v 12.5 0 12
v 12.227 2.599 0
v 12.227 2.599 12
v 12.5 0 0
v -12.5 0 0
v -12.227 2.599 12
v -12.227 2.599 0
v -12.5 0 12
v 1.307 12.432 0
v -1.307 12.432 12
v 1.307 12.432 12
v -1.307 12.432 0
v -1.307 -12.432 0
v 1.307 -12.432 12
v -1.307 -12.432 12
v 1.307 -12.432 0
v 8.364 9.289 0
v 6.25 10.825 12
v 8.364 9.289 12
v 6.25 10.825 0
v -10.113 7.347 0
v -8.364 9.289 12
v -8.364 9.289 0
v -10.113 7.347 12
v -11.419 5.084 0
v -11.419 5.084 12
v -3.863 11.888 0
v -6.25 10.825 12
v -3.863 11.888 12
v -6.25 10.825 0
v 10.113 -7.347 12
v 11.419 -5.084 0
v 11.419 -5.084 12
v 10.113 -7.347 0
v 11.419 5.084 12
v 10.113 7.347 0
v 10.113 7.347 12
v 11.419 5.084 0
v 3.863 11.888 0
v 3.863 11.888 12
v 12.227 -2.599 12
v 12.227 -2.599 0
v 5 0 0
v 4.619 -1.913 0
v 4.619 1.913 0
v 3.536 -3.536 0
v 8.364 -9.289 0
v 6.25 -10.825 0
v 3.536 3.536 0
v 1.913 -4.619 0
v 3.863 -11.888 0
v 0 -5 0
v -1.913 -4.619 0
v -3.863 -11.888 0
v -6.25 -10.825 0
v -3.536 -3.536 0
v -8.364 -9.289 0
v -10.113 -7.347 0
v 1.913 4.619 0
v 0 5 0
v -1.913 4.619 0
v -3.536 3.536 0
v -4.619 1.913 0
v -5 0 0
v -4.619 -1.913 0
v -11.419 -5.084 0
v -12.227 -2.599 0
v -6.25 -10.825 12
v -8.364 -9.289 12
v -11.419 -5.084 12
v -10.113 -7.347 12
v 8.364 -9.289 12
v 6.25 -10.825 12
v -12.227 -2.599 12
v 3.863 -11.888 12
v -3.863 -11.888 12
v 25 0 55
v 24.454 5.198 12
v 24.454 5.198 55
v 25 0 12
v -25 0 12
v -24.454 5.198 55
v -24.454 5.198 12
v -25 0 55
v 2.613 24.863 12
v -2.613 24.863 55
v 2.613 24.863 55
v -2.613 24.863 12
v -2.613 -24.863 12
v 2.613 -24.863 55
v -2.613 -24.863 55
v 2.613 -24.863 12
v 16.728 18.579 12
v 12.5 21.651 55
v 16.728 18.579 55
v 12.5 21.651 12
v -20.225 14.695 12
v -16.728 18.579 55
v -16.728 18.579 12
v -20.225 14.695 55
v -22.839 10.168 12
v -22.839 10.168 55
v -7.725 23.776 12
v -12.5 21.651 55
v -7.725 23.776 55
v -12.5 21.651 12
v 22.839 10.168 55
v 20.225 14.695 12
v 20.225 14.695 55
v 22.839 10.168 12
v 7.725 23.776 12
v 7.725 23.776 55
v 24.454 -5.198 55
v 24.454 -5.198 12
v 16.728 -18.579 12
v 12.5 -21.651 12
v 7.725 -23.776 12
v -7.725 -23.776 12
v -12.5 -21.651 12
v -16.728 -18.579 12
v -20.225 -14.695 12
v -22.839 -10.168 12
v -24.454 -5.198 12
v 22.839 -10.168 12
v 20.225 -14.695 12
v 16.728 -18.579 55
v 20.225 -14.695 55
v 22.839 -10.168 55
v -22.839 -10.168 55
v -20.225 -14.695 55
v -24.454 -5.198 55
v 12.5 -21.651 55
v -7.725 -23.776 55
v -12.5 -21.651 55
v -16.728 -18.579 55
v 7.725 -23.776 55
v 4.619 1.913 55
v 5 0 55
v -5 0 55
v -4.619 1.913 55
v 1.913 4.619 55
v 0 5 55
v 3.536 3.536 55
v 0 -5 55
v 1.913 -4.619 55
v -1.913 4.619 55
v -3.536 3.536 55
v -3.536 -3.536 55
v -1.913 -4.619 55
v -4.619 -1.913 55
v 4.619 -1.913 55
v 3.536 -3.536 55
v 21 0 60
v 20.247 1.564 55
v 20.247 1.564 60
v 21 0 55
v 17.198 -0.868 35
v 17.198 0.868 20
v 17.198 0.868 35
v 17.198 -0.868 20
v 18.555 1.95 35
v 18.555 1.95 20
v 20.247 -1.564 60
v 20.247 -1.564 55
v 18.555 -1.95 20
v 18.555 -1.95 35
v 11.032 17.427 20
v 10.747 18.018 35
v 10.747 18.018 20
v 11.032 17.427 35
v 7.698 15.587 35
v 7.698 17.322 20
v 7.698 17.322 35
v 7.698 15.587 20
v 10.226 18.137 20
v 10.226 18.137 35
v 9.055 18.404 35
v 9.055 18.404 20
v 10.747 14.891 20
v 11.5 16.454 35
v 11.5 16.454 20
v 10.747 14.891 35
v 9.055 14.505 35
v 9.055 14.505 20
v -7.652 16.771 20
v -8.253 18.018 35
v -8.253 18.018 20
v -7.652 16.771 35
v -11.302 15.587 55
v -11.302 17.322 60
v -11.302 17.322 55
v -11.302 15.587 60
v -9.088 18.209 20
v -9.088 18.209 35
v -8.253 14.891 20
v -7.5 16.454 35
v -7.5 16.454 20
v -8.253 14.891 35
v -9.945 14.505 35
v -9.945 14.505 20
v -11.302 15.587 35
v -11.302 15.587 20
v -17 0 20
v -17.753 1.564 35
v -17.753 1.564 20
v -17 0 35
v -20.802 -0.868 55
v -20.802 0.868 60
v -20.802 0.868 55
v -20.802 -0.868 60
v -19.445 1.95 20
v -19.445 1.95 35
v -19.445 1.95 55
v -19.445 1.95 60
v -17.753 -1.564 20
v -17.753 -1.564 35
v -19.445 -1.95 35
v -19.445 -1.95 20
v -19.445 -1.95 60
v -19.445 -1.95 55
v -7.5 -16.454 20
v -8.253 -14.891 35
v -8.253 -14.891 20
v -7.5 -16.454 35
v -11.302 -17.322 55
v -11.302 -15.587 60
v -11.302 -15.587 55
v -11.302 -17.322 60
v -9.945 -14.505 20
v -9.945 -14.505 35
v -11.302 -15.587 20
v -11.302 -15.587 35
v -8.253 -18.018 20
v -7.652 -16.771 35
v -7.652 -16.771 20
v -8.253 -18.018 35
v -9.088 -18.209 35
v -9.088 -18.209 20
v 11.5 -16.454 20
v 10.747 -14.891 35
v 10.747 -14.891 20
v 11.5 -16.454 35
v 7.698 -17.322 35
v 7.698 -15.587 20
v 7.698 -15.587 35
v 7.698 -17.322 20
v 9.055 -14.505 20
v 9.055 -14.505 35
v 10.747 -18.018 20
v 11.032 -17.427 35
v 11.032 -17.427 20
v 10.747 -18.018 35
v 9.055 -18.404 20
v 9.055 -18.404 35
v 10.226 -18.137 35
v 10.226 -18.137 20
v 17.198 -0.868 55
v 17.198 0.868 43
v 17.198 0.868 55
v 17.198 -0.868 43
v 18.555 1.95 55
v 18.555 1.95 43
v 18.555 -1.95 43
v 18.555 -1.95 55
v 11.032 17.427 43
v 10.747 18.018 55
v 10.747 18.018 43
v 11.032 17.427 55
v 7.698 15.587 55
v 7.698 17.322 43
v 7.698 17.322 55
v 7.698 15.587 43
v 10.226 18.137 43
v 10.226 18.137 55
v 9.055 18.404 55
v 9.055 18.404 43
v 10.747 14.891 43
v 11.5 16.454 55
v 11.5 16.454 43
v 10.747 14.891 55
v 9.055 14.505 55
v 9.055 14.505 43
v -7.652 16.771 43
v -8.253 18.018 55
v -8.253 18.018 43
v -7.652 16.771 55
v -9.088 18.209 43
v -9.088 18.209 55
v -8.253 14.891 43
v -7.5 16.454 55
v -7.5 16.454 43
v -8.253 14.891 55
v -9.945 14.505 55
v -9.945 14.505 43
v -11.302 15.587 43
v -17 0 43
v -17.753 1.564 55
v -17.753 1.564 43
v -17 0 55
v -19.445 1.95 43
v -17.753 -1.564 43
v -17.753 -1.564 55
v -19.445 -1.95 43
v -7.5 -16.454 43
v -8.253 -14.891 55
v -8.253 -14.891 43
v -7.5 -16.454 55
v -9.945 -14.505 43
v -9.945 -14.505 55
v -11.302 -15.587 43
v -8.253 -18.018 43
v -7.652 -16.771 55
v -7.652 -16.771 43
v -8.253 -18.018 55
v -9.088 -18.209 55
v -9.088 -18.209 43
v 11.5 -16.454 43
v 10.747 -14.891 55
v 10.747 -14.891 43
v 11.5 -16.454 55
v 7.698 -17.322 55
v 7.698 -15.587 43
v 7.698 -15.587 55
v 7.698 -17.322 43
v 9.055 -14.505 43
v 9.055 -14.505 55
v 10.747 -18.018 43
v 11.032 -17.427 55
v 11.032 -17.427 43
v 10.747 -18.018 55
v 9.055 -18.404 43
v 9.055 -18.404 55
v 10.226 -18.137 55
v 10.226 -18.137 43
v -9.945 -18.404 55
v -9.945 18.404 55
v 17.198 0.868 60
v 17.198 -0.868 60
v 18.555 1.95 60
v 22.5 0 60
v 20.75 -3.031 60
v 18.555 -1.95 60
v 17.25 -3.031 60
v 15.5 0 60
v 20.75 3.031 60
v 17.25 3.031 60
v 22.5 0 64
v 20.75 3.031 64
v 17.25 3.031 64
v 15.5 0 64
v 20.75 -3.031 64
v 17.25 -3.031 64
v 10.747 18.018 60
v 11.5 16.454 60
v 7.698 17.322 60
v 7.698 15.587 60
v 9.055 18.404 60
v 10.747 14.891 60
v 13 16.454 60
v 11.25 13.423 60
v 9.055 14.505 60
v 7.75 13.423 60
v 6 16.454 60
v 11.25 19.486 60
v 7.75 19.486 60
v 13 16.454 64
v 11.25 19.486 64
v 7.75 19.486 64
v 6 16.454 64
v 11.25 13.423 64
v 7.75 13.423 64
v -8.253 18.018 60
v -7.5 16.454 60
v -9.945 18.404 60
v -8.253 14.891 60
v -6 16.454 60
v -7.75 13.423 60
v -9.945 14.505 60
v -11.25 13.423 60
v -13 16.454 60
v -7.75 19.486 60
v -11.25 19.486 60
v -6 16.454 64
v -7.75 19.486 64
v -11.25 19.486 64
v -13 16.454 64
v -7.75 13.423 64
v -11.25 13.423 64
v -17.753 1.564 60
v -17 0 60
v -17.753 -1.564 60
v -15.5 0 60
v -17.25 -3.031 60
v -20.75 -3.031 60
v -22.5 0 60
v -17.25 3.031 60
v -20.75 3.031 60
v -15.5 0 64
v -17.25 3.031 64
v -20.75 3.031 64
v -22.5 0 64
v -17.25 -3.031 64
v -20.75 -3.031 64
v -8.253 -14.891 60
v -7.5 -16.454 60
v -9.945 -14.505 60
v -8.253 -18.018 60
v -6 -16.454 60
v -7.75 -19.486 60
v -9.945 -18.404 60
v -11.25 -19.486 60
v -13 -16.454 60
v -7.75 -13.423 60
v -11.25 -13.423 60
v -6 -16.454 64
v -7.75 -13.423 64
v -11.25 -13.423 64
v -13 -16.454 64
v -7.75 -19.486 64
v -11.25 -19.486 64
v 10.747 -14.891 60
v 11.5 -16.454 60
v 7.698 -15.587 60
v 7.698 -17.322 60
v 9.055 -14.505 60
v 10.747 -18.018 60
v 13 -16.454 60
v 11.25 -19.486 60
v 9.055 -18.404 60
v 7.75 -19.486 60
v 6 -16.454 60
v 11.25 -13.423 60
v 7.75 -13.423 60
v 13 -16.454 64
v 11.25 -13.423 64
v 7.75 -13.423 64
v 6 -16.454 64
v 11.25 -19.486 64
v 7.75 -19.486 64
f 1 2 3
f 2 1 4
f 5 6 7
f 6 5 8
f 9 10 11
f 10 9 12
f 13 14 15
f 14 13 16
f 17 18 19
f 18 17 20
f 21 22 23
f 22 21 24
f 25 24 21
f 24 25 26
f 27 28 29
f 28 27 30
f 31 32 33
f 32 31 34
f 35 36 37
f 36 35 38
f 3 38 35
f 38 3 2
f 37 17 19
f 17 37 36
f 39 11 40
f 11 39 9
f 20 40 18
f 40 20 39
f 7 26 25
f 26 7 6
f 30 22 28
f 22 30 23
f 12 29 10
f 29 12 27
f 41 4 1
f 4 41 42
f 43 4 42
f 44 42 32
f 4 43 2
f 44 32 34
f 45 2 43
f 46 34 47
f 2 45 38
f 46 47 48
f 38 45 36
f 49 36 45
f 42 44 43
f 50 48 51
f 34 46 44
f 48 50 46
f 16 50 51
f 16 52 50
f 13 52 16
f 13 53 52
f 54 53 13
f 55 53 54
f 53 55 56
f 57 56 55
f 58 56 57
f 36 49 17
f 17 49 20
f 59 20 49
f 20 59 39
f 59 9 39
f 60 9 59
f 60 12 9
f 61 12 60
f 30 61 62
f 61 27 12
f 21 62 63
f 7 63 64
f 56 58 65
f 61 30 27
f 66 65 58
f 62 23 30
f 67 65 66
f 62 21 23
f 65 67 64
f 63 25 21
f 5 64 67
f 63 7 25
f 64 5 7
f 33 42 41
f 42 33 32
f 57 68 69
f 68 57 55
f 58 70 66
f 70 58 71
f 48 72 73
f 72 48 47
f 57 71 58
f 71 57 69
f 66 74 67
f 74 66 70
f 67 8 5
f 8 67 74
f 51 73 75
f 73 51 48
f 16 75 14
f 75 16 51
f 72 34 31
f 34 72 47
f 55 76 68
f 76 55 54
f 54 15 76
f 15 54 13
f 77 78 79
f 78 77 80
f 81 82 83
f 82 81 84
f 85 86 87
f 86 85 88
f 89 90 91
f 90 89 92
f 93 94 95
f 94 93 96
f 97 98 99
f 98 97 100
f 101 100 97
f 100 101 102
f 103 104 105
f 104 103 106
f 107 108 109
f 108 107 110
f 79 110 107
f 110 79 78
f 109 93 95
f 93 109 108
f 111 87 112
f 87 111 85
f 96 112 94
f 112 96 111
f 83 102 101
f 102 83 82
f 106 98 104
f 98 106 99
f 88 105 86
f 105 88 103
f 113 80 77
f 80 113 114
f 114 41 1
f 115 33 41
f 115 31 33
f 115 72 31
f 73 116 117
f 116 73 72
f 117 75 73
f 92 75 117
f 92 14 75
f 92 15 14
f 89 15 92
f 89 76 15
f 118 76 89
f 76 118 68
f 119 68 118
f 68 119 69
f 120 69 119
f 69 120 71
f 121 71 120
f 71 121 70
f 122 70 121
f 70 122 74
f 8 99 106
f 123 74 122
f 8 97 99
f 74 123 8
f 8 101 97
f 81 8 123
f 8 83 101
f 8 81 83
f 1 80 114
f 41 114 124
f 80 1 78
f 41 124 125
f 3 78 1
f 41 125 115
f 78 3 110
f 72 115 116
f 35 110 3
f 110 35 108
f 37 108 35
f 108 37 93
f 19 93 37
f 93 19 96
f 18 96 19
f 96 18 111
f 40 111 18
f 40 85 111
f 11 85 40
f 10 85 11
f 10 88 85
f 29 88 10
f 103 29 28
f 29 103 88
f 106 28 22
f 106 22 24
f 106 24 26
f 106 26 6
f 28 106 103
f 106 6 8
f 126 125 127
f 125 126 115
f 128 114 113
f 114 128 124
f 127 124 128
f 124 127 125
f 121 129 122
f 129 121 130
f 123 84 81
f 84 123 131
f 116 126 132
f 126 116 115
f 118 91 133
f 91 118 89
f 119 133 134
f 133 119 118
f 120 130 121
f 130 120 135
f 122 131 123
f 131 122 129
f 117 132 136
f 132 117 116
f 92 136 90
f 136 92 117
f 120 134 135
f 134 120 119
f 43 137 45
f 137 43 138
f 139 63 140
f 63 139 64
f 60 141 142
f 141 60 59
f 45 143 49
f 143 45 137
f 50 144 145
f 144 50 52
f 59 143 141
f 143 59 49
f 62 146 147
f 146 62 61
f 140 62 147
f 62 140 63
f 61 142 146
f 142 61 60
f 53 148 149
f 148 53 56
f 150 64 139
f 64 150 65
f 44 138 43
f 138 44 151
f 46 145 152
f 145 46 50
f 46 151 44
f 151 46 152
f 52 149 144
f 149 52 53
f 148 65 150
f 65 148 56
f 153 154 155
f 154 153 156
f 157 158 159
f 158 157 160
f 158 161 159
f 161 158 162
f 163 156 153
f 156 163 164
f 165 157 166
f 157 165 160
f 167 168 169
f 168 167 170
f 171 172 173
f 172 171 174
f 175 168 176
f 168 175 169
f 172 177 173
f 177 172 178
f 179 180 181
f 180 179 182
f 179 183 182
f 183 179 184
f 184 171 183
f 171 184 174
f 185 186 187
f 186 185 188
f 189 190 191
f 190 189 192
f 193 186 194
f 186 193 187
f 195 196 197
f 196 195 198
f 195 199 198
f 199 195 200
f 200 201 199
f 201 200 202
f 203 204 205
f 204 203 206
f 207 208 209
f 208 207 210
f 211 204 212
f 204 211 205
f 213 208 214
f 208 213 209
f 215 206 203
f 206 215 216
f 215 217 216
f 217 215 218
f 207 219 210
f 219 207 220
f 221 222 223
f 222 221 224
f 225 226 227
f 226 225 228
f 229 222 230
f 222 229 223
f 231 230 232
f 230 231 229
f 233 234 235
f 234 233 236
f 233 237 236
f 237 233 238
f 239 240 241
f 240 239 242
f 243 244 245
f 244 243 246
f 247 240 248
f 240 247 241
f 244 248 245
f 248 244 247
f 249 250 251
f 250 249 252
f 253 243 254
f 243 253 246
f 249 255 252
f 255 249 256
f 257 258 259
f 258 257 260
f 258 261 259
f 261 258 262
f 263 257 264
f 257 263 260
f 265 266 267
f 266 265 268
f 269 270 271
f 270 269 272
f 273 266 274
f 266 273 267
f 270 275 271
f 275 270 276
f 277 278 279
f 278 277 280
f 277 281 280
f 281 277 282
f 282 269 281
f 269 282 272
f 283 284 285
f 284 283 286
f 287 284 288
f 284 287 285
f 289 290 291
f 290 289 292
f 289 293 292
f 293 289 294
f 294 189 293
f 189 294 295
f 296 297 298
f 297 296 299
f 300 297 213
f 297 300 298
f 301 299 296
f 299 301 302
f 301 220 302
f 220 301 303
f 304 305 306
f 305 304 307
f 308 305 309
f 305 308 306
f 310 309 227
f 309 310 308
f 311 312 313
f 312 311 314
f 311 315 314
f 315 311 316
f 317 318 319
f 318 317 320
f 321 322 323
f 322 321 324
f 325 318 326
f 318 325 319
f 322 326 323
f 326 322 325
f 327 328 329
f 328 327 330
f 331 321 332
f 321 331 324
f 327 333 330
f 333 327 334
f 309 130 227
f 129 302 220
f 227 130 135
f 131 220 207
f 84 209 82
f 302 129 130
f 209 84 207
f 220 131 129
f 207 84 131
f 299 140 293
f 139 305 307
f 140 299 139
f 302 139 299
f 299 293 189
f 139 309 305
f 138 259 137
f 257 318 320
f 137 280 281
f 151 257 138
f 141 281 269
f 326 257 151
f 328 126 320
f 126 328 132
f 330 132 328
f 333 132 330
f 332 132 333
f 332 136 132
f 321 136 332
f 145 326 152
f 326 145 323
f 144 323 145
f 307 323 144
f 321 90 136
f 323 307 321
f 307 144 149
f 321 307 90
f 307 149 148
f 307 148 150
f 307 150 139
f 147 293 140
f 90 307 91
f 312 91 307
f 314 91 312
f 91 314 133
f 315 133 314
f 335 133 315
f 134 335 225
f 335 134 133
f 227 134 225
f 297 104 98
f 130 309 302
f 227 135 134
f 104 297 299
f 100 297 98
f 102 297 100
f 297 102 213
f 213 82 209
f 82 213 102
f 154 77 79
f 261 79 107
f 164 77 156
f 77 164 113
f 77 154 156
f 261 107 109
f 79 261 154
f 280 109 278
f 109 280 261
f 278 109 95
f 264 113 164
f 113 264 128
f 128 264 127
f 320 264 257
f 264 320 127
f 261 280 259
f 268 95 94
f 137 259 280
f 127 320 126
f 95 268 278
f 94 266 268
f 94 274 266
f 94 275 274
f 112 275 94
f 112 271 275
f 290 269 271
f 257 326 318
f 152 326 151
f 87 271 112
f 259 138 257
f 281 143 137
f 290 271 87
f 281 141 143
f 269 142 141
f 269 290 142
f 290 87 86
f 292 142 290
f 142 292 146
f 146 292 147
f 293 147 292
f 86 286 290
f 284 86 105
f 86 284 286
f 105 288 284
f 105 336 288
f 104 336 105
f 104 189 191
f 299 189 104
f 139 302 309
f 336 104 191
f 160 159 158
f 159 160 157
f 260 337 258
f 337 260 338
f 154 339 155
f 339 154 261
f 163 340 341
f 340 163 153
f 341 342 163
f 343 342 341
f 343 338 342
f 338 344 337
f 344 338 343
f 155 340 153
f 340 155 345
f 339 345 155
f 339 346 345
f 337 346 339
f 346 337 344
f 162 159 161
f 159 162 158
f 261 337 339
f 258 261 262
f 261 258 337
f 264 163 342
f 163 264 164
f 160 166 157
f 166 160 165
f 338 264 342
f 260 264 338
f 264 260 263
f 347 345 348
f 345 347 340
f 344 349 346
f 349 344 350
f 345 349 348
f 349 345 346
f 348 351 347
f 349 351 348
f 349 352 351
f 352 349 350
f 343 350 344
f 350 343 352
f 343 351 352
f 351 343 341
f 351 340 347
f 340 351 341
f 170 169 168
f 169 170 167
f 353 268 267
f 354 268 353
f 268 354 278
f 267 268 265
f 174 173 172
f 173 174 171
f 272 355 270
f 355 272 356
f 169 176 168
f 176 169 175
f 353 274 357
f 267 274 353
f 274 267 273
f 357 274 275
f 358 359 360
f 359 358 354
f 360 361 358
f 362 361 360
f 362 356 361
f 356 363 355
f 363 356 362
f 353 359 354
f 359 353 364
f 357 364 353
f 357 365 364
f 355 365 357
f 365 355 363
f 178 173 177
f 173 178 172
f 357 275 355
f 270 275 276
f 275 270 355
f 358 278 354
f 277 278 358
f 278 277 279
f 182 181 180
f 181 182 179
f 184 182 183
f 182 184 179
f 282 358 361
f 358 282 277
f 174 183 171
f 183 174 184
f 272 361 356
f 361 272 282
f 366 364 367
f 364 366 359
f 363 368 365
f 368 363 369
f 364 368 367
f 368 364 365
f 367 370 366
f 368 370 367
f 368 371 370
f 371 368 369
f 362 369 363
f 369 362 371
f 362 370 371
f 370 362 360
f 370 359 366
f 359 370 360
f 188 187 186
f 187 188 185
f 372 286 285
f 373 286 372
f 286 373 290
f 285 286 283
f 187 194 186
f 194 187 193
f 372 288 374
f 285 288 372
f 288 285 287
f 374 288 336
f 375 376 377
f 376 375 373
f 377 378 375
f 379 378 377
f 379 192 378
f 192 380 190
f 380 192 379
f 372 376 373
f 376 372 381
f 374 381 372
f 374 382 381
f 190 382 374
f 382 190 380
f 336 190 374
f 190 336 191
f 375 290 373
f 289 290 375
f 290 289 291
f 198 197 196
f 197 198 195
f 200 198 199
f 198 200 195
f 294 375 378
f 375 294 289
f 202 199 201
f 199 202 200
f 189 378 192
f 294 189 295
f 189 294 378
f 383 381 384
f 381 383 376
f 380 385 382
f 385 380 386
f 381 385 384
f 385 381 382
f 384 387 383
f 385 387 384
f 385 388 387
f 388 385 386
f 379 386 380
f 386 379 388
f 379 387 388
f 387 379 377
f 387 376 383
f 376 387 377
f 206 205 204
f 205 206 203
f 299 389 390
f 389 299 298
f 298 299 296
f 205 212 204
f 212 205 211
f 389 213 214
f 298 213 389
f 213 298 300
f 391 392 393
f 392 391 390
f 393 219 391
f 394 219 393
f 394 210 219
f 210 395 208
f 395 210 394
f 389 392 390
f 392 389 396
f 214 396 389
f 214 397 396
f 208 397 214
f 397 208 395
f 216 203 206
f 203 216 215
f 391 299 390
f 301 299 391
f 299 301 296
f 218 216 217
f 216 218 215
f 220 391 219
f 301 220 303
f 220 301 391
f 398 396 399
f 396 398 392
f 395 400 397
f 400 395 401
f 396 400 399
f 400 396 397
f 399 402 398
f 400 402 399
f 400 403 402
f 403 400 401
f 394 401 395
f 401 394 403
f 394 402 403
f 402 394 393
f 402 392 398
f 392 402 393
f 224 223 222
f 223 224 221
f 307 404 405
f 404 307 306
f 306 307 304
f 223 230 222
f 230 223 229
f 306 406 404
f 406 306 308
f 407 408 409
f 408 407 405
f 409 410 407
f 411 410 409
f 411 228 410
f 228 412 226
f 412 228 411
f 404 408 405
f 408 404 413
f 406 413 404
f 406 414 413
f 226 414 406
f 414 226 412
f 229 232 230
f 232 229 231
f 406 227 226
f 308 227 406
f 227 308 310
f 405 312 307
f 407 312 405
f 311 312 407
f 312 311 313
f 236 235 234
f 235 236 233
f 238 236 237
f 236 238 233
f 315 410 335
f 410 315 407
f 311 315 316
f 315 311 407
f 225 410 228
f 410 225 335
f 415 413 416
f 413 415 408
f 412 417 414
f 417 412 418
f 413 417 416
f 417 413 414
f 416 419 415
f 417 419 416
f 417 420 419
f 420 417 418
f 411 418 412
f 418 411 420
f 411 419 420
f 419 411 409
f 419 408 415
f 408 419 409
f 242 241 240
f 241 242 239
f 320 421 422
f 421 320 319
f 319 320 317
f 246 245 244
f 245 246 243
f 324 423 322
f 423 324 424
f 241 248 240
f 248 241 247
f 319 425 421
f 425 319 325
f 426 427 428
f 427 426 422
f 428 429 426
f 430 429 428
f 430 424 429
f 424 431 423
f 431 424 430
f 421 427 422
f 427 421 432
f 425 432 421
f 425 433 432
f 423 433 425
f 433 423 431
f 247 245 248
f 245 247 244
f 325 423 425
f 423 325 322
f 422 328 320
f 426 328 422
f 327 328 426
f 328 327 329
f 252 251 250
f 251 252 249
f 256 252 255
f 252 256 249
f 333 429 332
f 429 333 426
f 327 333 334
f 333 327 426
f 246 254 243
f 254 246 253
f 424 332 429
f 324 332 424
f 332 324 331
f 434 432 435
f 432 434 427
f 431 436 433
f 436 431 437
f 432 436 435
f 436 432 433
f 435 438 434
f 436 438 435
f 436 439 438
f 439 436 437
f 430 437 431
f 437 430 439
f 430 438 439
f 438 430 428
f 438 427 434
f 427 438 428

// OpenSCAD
// Parameters
shaft_d = 25;         // Increased shaft diameter
shaft_l = 20;         // Shortened shaft length
bore_d = 10;

flange_d = 50;        // Increased flange diameter
flange_t = 8;         // Increased flange thickness
bolt_hole_d = 4;
bolt_circle_d = 38;   // Adjusted bolt circle to match flange size

spacer_t = 3;         // Slightly thicker spacer for visibility

bolt_d = 4;
bolt_l = 40;          // Increased bolt length to pass through all layers
nut_d = 7;            // Slightly larger nut diameter
nut_h = 4;            // Increased nut height

// Modules
module shaft() {
    difference() {
        union() {
            cylinder(d=shaft_d, h=shaft_l);
            translate([0, 0, shaft_l - flange_t])
                cylinder(d=flange_d, h=flange_t);
        }
        translate([0, 0, -1])
            cylinder(d=bore_d, h=shaft_l + 2);
    }
}

module flange_plate() {
    difference() {
        cylinder(d=flange_d, h=flange_t);
        translate([0, 0, -1])
            cylinder(d=bore_d, h=flange_t + 2);
        for (i = [0:5]) {
            angle = i * 60;
            x = bolt_circle_d / 2 * cos(angle);
            y = bolt_circle_d / 2 * sin(angle);
            translate([x, y, -1])
                cylinder(d=bolt_hole_d, h=flange_t + 2);
        }
    }
}

module spacer_ring() {
    difference() {
        cylinder(d=flange_d, h=spacer_t);
        translate([0, 0, -1])
            cylinder(d=bore_d, h=spacer_t + 2);
        for (i = [0:5]) {
            angle = i * 60;
            x = bolt_circle_d / 2 * cos(angle);
            y = bolt_circle_d / 2 * sin(angle);
            translate([x, y, -1])
                cylinder(d=bolt_hole_d, h=spacer_t + 2);
        }
    }
}

module bolt_with_nut() {
    union() {
        cylinder(d=bolt_d, h=bolt_l);
        translate([0, 0, bolt_l])
            cylinder(d=nut_d, h=nut_h, $fn=6);
    }
}

// Assembly
module coupling() {
    // Layer 1: Input Shaft
    translate([0, 0, 0])
        shaft();

    // Layer 2: Flange Plates on Input Shaft
    translate([0, 0, shaft_l])
        flange_plate();
    translate([0, 0, shaft_l + flange_t])
        flange_plate();

    // Layer 3: Spacer Ring
    translate([0, 0, shaft_l + 2 * flange_t])
        spacer_ring();

    // Layer 4: Flange Plates on Output Shaft
    translate([0, 0, shaft_l + 2 * flange_t + spacer_t])
        flange_plate();
    translate([0, 0, shaft_l + 3 * flange_t + spacer_t])
        flange_plate();

    // Layer 5: Output Shaft
    translate([0, 0, shaft_l + 4 * flange_t + spacer_t])
        rotate([180, 0, 0])
            shaft();

    // Layer 6: Bolts and Nuts
    for (i = [0:5]) {
        angle = i * 60;
        x = bolt_circle_d / 2 * cos(angle);
        y = bolt_circle_d / 2 * sin(angle);
        translate([x, y, shaft_l])
            bolt_with_nut();
    }
}

// Render the full coupling
coupling();
 
